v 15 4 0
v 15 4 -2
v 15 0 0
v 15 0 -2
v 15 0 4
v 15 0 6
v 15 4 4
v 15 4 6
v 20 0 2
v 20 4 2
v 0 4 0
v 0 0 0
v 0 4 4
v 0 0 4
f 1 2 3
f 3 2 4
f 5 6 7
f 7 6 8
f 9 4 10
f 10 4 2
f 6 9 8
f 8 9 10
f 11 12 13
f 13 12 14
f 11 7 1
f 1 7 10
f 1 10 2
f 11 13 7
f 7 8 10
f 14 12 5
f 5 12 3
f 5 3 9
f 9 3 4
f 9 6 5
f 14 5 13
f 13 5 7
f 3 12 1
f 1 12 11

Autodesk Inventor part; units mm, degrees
ref_plane "YZ Plane" through (0, 0, 0) normal (1, 0, 0) x (0, 1, 0)
ref_plane "XZ Plane" through (0, 0, 0) normal (0, 1, 0) x (-1, 0, 0)
ref_plane "XY Plane" through (0, 0, 0) normal (0, 0, 1) x (1, 0, 0)
sketch "Skizze1" plane through (0, 0, 0) normal (0, 0, 1) x (1, 0, 0)
  line L0 (0, 0) -> (15, 0)
  line L1 (15, 0) -> (15, 4)
  line L2 (15, 4) -> (0, 4)
  line L3 (0, 4) -> (0, 0)
  dimension "d0" = 15
  dimension "d1" = 4
extrude "Extrusion1" add sketch "Skizze1" along normal blind 4
sketch "Skizze2" plane through (0, 0, 0) normal (0, -1, 0) x (1, 0, 0)
  line L0 (15, 0) -> (15, 4) projected
  line L1 (15, 2) -> (15, 6)
  line L2 (15, 6) -> (15, -2)
  line L3 (15, 2) -> (20, 2)
  line L4 (20, 2) -> (15, -2)
  line L5 (15, 6) -> (20, 2)
  point P0 (0, 0)
  dimension "d4" = 4
  dimension "d5" = 8
  dimension "d6" = 5
extrude "Extrusion2" add sketch "Skizze2" against normal blind 4
properties part number "ArrowUp"
